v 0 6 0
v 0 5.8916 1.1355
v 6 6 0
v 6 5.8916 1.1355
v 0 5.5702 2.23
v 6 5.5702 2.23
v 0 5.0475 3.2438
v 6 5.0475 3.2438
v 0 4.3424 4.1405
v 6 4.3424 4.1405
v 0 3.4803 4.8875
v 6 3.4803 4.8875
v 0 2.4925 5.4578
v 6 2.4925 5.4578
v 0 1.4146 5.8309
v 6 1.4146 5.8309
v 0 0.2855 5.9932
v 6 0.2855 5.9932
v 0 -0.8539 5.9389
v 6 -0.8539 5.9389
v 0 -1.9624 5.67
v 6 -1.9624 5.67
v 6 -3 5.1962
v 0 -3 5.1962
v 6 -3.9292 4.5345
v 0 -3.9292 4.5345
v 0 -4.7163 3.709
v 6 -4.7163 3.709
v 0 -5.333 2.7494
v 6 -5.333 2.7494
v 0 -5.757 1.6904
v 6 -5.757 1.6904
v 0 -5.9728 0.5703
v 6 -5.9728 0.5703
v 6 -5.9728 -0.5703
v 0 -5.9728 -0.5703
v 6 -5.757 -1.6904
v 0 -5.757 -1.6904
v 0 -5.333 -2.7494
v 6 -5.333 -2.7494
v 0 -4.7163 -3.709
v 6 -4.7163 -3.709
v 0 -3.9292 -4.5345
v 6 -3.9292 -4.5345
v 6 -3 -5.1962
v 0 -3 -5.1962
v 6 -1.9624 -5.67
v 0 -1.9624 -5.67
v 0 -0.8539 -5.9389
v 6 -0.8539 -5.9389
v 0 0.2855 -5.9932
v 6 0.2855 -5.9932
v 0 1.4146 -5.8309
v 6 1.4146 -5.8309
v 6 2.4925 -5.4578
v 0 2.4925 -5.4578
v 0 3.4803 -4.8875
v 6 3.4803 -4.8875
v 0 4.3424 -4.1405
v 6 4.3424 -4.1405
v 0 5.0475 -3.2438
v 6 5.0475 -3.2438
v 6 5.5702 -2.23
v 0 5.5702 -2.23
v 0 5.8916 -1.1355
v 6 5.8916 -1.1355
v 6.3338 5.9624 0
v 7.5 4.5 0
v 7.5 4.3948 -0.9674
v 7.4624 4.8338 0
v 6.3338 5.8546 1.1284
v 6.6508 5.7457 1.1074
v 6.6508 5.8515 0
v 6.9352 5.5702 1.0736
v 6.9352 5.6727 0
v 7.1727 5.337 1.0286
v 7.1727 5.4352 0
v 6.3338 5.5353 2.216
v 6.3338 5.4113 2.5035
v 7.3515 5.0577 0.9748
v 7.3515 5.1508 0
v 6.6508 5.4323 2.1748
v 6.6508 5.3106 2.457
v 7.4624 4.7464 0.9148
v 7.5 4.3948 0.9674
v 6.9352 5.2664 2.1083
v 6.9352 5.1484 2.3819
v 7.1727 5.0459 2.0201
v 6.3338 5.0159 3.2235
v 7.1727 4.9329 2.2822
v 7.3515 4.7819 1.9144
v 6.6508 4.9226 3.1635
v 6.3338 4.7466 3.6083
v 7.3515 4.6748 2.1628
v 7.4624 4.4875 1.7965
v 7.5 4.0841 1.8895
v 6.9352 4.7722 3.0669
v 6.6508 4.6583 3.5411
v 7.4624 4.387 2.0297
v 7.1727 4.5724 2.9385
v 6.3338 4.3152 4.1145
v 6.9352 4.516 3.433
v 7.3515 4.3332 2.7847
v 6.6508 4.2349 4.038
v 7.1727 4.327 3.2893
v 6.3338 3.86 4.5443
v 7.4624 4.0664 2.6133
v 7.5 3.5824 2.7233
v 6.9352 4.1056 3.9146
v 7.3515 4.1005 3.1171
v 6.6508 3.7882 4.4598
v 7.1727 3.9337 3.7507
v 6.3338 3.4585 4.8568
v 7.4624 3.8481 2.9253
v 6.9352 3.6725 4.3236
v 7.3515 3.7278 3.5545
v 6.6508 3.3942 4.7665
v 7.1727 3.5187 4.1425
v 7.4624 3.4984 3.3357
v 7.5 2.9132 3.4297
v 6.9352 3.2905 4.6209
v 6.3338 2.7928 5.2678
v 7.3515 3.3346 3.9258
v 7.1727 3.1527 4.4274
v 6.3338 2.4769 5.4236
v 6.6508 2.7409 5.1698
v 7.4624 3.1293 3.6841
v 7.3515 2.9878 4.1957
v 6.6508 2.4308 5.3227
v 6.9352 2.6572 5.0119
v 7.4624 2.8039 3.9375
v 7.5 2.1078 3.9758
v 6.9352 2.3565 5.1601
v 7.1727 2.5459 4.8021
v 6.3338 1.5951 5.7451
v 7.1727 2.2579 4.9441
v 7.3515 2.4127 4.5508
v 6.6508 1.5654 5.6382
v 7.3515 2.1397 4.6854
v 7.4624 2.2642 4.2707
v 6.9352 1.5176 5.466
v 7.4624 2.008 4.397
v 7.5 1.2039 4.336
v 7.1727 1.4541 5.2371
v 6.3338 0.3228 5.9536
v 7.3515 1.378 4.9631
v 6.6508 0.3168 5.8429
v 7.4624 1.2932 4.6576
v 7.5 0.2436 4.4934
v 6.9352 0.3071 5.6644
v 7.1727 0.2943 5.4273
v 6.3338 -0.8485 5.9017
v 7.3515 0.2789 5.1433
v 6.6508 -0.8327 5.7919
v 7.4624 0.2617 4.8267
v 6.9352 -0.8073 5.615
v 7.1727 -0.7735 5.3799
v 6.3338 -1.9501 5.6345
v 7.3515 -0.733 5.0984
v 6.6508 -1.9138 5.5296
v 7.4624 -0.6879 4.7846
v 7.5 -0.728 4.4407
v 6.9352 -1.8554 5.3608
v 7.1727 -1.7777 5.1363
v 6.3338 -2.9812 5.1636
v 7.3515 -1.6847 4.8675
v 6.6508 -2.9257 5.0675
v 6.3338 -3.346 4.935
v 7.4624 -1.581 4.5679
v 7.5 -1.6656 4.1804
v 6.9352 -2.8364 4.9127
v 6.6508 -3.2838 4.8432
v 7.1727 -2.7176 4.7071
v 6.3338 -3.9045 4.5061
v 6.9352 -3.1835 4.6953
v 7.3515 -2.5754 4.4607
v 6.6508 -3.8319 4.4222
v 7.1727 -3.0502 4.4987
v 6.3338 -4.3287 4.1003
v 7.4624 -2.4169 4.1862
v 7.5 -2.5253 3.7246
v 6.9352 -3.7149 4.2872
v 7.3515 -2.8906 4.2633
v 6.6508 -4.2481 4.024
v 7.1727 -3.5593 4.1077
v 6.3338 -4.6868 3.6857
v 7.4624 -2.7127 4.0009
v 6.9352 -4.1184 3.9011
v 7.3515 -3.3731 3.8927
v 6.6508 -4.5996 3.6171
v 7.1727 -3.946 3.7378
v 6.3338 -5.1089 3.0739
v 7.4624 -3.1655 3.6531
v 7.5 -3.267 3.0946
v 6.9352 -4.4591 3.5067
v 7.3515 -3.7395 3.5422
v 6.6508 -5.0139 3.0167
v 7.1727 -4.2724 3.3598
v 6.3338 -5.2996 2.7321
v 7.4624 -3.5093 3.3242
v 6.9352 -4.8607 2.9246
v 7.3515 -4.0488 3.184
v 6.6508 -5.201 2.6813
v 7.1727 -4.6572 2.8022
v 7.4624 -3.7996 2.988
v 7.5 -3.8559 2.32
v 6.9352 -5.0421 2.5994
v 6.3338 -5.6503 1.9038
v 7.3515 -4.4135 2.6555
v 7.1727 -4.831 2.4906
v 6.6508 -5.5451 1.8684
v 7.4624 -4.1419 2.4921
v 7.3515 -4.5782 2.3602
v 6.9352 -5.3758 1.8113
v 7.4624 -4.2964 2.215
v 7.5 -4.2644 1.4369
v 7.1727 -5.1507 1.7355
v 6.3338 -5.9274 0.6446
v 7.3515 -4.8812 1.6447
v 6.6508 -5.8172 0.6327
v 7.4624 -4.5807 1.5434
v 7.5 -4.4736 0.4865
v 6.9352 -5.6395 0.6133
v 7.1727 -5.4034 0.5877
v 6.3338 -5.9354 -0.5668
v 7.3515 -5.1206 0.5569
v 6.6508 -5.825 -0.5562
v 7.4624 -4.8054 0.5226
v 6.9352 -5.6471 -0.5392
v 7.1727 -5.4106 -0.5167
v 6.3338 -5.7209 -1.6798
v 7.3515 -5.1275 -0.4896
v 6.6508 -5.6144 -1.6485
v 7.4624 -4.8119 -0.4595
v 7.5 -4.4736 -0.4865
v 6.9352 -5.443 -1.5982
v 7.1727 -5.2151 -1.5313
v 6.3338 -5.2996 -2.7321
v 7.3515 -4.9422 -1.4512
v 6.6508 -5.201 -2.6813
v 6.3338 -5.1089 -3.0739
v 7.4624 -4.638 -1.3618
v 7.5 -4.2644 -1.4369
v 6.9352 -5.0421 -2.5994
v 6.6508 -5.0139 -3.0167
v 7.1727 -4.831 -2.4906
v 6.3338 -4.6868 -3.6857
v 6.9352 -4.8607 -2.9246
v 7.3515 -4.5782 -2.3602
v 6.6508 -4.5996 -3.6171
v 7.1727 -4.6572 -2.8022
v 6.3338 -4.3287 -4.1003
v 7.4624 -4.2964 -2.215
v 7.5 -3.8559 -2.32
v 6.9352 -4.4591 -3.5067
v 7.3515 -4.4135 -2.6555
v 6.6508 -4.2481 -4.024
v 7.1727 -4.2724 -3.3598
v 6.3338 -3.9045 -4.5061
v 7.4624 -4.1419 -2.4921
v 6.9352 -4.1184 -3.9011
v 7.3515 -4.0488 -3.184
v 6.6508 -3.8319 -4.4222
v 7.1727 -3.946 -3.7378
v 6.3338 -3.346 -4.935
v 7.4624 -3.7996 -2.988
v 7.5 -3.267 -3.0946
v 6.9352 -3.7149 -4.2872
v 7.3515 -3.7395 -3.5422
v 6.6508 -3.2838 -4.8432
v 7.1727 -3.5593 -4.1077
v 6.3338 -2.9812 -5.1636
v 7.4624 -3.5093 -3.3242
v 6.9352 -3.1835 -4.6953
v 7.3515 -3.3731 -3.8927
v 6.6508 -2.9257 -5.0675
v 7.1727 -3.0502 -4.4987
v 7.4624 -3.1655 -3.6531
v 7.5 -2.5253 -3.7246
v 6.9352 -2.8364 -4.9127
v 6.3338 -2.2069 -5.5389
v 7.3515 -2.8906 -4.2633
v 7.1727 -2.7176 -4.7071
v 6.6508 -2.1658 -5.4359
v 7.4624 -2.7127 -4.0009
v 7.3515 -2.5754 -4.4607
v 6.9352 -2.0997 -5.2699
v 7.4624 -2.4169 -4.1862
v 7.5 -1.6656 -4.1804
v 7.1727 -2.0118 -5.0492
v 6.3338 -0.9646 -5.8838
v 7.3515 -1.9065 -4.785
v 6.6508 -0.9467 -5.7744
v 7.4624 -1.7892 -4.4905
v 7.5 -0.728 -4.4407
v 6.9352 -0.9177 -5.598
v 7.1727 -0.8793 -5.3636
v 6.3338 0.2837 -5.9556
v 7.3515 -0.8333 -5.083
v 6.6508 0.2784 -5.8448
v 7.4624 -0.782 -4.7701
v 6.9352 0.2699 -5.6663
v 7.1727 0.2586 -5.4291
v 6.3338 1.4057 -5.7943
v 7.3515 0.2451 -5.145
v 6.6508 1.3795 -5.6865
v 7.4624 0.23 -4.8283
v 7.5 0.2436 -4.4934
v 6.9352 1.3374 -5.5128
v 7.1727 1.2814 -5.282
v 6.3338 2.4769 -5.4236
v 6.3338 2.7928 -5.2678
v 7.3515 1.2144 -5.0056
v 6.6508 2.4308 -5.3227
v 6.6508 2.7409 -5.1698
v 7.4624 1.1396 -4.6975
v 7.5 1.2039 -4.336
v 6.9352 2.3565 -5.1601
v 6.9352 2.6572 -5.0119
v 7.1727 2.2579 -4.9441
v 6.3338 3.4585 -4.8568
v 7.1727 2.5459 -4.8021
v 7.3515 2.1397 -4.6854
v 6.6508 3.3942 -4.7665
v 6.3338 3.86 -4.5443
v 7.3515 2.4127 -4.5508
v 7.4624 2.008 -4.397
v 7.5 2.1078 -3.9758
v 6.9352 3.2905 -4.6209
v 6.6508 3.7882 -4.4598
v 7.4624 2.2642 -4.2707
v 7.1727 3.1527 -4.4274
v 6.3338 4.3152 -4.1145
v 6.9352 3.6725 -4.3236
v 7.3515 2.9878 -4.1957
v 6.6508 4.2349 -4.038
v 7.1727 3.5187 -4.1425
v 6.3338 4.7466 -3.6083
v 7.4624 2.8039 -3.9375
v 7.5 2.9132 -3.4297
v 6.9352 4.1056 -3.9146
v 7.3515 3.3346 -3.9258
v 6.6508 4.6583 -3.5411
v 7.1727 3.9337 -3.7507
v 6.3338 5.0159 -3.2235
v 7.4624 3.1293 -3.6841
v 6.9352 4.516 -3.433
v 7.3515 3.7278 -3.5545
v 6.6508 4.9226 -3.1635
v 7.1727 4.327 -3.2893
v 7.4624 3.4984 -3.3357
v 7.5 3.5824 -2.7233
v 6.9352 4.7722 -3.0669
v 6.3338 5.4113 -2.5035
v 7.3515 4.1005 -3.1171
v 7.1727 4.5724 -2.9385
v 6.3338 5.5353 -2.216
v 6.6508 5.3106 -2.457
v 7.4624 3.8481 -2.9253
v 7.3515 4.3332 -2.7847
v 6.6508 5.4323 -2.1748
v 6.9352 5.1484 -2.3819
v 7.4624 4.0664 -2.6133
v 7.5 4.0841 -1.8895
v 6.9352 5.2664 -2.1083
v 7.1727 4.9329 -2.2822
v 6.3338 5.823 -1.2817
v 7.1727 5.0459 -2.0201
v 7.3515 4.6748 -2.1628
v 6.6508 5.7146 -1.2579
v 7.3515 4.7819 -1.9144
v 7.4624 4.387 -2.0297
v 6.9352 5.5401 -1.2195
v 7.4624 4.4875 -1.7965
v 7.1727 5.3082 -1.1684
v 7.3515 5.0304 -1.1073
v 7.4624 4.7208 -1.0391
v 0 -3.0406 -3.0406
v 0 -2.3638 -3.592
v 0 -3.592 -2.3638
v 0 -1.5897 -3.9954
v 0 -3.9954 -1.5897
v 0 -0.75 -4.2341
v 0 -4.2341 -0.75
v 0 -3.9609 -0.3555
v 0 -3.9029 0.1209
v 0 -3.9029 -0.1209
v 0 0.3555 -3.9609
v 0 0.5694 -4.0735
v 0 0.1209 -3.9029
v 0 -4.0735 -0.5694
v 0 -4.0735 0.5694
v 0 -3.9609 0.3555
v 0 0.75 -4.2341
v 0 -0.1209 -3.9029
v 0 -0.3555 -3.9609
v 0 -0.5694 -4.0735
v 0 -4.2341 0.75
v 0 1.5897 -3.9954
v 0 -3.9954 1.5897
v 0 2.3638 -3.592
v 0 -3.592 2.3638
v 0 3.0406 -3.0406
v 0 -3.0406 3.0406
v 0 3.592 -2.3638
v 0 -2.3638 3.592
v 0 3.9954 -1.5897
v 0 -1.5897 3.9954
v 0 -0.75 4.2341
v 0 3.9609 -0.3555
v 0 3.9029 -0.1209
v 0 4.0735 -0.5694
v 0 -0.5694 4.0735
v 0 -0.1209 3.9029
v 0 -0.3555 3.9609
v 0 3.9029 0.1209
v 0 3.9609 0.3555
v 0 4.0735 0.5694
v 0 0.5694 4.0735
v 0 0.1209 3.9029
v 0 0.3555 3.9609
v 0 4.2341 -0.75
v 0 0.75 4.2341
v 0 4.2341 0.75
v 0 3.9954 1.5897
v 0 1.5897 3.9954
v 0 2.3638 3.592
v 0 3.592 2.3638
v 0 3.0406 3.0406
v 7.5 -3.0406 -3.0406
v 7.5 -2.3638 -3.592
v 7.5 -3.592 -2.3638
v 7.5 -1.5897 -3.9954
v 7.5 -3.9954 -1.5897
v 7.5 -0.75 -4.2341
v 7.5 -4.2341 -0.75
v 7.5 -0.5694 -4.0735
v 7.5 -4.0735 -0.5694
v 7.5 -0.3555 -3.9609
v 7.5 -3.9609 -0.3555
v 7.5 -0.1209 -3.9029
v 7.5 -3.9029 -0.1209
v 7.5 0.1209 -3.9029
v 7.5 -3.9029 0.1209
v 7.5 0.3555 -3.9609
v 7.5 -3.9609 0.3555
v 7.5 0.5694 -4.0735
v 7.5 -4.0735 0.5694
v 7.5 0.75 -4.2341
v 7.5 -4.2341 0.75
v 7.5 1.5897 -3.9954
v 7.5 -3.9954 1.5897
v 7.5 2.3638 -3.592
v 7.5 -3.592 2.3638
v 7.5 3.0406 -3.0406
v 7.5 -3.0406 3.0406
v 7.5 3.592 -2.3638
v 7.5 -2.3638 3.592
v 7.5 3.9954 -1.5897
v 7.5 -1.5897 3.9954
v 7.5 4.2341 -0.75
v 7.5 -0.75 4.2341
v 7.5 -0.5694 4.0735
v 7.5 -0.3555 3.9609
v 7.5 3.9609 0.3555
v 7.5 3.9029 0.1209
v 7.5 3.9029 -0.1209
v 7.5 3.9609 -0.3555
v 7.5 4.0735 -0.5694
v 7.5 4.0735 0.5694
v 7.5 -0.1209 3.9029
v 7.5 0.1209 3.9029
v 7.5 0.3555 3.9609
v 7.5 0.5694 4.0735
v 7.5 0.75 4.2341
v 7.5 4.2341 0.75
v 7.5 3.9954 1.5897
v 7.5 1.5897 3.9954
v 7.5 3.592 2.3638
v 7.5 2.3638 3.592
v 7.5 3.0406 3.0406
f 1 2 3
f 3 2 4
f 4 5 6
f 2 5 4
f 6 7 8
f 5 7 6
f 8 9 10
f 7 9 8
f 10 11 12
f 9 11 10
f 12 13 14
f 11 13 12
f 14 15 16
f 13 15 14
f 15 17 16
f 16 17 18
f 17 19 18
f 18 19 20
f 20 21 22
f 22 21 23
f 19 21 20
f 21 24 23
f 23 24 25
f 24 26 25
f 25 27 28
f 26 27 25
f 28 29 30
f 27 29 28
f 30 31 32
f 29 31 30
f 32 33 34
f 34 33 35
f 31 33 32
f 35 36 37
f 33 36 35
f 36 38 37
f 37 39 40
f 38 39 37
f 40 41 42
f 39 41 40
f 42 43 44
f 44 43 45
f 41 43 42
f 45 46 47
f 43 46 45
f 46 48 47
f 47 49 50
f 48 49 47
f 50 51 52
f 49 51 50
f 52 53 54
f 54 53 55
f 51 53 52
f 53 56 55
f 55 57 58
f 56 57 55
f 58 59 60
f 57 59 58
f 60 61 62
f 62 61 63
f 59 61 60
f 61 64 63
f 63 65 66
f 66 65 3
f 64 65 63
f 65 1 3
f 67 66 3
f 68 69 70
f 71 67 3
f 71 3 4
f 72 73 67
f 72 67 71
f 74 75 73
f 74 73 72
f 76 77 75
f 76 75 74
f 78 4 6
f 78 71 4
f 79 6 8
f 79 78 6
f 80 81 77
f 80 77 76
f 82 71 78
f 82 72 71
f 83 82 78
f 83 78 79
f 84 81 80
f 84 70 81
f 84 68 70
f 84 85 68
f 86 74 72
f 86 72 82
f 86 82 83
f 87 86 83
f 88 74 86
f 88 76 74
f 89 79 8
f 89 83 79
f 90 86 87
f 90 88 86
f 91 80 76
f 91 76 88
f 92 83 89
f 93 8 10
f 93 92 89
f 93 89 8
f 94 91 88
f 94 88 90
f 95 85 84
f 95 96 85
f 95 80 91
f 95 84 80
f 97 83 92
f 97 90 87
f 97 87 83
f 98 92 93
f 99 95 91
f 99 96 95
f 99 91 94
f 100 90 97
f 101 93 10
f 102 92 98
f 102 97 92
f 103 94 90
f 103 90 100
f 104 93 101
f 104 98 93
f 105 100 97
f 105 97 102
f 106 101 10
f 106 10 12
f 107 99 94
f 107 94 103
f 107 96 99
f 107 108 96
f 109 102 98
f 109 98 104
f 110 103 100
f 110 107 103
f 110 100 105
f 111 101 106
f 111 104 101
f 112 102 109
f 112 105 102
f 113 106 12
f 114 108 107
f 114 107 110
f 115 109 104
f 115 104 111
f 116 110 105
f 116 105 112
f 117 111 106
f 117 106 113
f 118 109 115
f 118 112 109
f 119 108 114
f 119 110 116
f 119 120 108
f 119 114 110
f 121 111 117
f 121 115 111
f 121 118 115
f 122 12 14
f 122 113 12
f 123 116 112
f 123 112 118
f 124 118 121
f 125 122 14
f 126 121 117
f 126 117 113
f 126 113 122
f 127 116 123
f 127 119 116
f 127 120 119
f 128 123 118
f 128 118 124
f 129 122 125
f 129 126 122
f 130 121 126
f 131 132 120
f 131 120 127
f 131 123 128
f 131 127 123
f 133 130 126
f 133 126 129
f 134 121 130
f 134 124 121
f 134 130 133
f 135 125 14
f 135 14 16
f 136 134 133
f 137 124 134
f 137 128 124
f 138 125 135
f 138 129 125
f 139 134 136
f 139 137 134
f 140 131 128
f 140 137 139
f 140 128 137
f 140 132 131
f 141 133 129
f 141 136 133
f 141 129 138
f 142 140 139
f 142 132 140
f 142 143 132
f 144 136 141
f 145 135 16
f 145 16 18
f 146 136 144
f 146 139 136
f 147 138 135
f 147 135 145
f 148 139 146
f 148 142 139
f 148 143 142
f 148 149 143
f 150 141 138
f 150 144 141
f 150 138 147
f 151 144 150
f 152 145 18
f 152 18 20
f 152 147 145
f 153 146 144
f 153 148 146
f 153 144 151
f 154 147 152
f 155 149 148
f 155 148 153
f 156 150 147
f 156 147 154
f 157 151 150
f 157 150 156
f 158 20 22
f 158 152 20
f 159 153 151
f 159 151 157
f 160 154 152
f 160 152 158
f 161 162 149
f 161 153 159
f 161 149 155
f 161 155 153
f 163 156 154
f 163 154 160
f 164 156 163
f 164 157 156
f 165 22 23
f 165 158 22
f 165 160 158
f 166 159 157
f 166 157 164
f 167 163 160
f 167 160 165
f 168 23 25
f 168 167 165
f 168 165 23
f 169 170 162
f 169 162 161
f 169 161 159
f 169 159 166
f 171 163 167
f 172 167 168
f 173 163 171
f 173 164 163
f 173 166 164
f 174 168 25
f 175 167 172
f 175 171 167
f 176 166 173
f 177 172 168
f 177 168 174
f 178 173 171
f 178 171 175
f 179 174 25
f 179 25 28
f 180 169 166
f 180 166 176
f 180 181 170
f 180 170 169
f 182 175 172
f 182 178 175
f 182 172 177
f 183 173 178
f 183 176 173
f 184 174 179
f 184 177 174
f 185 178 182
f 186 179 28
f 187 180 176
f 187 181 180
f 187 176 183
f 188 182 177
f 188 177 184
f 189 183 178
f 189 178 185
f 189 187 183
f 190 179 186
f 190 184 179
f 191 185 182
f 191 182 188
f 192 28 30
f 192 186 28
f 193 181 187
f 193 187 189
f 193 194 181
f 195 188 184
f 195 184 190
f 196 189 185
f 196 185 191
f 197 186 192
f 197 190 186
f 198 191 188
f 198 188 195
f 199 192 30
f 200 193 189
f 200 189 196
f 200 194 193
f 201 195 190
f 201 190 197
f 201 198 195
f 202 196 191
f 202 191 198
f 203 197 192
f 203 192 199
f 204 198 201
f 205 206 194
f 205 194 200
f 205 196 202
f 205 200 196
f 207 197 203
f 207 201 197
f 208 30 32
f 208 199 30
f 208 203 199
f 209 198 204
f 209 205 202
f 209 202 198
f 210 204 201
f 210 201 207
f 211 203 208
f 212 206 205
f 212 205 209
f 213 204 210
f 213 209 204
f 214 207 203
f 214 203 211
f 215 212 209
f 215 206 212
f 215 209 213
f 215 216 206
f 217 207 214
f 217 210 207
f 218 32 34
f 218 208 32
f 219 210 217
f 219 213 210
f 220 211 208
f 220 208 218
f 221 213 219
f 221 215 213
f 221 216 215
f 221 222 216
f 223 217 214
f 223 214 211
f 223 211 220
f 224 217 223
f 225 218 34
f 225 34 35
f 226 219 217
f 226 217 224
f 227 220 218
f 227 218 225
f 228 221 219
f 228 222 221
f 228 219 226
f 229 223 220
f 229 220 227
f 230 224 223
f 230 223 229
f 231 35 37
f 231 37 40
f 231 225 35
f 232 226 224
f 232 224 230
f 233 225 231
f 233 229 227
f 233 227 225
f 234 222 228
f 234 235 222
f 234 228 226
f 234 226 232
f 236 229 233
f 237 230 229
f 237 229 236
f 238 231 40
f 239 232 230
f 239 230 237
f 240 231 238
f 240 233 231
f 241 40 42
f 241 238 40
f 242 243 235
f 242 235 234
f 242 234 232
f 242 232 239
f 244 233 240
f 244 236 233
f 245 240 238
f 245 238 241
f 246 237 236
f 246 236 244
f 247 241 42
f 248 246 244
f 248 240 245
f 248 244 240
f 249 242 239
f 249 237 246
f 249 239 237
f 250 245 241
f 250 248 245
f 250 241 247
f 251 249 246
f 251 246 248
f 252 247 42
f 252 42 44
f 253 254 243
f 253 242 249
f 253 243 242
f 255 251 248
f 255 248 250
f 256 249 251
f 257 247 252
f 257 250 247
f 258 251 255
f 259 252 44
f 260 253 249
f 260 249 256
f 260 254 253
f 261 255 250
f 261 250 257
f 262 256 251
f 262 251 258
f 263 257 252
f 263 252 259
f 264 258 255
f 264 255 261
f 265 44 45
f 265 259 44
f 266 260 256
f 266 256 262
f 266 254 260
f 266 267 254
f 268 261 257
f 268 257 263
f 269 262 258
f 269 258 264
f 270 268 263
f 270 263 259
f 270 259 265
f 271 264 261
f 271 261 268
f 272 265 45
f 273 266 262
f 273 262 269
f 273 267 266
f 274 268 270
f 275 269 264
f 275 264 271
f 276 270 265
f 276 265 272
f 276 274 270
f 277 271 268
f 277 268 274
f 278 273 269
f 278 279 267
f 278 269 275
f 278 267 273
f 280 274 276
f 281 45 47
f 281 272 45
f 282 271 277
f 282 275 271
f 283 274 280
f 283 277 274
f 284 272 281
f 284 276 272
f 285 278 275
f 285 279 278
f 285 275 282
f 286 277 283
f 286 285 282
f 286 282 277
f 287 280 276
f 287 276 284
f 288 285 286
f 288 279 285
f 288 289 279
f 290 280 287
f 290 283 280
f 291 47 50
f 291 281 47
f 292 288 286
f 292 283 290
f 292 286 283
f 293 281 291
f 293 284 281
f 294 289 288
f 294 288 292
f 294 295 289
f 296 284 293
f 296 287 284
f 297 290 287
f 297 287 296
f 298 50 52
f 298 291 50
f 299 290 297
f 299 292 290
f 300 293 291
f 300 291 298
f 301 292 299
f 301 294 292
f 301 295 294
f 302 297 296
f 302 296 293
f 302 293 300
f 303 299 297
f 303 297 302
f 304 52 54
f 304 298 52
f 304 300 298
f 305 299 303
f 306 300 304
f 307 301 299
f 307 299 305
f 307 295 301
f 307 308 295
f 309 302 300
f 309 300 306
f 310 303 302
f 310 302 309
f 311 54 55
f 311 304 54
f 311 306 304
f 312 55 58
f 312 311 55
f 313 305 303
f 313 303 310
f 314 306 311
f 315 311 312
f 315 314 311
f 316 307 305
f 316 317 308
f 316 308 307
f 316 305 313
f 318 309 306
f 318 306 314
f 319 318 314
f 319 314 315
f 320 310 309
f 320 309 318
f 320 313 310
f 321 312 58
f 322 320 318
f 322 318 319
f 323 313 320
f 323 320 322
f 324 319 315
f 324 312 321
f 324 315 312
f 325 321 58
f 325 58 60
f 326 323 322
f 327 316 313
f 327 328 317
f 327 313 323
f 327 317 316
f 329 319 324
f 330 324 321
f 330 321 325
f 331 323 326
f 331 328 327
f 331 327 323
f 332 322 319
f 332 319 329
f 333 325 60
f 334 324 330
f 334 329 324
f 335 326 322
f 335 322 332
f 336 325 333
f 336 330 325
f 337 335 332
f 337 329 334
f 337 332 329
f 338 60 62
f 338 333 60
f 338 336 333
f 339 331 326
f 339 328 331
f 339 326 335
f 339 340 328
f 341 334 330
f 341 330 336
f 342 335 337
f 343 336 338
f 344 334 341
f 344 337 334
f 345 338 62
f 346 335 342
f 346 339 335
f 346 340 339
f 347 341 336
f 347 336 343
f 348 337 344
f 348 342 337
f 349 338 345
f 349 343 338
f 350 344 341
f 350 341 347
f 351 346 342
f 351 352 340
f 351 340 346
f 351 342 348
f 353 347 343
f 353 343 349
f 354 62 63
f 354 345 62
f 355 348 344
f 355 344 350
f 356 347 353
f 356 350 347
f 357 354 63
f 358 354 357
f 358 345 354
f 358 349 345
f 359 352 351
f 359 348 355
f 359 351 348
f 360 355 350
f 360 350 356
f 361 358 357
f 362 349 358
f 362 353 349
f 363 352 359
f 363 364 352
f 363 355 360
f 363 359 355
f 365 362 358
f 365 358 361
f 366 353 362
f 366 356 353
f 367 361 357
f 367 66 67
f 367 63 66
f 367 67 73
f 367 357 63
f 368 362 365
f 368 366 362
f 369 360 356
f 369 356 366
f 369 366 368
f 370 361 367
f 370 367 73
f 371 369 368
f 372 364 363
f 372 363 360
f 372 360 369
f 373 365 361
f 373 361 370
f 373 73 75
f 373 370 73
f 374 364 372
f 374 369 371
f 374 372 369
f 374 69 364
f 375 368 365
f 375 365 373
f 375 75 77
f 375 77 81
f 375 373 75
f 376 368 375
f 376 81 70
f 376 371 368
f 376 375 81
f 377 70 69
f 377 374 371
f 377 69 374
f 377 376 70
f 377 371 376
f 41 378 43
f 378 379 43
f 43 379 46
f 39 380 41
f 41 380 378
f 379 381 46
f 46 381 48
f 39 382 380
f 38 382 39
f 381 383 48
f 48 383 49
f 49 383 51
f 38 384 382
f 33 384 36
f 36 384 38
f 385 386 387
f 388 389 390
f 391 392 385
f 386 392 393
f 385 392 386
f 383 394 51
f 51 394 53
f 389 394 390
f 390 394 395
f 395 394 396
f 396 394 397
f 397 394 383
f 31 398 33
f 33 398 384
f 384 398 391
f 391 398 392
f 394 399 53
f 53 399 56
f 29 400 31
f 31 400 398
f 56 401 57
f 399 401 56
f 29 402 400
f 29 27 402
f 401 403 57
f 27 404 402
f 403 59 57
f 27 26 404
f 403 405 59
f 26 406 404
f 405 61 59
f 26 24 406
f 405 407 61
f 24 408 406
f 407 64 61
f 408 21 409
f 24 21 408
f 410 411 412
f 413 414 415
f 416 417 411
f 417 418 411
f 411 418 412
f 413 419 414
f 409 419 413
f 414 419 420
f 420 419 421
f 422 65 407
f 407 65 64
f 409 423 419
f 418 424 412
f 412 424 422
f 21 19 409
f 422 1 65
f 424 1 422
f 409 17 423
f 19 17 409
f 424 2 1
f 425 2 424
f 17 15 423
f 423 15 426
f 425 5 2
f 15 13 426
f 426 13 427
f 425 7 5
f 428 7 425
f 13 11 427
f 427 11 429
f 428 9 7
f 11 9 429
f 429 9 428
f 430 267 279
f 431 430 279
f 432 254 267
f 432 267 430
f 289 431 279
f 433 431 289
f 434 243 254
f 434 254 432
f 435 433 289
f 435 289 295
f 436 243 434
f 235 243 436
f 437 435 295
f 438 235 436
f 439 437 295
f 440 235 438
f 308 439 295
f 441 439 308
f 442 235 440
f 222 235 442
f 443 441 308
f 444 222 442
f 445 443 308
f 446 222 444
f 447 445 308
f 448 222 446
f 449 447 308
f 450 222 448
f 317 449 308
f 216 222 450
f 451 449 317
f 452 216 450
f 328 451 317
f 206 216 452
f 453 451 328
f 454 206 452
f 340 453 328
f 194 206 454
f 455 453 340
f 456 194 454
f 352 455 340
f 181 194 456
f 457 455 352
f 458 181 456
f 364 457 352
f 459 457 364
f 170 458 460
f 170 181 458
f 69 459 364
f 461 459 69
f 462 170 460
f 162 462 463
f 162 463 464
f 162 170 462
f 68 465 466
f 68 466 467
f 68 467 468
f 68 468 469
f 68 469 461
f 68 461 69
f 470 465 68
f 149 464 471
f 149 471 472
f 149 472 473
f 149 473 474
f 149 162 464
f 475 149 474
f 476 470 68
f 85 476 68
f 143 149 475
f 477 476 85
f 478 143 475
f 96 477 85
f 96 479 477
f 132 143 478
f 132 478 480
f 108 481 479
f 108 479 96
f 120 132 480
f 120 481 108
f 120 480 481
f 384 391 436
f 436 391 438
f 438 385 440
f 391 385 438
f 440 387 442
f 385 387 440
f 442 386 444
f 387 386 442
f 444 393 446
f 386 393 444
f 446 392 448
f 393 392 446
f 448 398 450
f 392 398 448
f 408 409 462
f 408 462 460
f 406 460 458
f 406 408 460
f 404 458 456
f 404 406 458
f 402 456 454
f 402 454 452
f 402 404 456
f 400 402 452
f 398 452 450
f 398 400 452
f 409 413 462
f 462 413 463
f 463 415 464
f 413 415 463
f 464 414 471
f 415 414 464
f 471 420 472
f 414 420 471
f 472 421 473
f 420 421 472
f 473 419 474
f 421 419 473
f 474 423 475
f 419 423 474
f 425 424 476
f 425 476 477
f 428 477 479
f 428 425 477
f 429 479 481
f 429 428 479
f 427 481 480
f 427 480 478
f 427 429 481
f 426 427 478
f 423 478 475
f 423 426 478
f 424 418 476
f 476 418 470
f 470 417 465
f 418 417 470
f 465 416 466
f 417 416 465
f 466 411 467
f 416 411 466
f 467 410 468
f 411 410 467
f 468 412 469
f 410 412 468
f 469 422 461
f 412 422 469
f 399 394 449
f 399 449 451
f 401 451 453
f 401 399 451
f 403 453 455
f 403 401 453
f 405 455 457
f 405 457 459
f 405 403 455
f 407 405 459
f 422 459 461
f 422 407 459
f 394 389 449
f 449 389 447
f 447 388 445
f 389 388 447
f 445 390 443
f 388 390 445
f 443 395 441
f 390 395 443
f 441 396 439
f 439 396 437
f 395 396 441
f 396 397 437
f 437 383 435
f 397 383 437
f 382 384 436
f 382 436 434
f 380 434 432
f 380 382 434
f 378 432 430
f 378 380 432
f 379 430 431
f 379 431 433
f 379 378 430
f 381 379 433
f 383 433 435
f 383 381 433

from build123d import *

# Parameters (mm, degrees)
SKETCH_R  = 6
PAD_DEPTH = 7.5
FILLET_R  = 1.5


with BuildPart() as part:
    # Sketch → Pad (new body)
    with BuildSketch(Plane.YZ):
        Circle(SKETCH_R)
        with BuildLine():
            ThreePointArc((-0.75, 4.234088), (0, 3.895526), (0.75, 4.234088))
            ThreePointArc((4.234088, 0.75), (3.040559, 3.040559), (0.75, 4.234088))
            ThreePointArc((4.234088, 0.75), (3.895526, 0), (4.234088, -0.75))
            ThreePointArc((0.75, -4.234088), (3.040559, -3.040559), (4.234088, -0.75))
            ThreePointArc((0.75, -4.234088), (0, -3.895526), (-0.75, -4.234088))
            ThreePointArc((-4.234088, -0.75), (-3.040559, -3.040559), (-0.75, -4.234088))
            ThreePointArc((-4.234088, -0.75), (-3.895526, 0), (-4.234088, 0.75))
            ThreePointArc((-0.75, 4.234088), (-3.040559, 3.040559), (-4.234088, 0.75))
        make_face(mode=Mode.SUBTRACT)
    extrude(amount=PAD_DEPTH)

    # Fillet
    fillet_edges = [part.edges().sort_by_distance(p)[0] for p in [
        (7.5, -6, 0),
    ]]
    fillet(fillet_edges, radius=FILLET_R)


solid = part.part
